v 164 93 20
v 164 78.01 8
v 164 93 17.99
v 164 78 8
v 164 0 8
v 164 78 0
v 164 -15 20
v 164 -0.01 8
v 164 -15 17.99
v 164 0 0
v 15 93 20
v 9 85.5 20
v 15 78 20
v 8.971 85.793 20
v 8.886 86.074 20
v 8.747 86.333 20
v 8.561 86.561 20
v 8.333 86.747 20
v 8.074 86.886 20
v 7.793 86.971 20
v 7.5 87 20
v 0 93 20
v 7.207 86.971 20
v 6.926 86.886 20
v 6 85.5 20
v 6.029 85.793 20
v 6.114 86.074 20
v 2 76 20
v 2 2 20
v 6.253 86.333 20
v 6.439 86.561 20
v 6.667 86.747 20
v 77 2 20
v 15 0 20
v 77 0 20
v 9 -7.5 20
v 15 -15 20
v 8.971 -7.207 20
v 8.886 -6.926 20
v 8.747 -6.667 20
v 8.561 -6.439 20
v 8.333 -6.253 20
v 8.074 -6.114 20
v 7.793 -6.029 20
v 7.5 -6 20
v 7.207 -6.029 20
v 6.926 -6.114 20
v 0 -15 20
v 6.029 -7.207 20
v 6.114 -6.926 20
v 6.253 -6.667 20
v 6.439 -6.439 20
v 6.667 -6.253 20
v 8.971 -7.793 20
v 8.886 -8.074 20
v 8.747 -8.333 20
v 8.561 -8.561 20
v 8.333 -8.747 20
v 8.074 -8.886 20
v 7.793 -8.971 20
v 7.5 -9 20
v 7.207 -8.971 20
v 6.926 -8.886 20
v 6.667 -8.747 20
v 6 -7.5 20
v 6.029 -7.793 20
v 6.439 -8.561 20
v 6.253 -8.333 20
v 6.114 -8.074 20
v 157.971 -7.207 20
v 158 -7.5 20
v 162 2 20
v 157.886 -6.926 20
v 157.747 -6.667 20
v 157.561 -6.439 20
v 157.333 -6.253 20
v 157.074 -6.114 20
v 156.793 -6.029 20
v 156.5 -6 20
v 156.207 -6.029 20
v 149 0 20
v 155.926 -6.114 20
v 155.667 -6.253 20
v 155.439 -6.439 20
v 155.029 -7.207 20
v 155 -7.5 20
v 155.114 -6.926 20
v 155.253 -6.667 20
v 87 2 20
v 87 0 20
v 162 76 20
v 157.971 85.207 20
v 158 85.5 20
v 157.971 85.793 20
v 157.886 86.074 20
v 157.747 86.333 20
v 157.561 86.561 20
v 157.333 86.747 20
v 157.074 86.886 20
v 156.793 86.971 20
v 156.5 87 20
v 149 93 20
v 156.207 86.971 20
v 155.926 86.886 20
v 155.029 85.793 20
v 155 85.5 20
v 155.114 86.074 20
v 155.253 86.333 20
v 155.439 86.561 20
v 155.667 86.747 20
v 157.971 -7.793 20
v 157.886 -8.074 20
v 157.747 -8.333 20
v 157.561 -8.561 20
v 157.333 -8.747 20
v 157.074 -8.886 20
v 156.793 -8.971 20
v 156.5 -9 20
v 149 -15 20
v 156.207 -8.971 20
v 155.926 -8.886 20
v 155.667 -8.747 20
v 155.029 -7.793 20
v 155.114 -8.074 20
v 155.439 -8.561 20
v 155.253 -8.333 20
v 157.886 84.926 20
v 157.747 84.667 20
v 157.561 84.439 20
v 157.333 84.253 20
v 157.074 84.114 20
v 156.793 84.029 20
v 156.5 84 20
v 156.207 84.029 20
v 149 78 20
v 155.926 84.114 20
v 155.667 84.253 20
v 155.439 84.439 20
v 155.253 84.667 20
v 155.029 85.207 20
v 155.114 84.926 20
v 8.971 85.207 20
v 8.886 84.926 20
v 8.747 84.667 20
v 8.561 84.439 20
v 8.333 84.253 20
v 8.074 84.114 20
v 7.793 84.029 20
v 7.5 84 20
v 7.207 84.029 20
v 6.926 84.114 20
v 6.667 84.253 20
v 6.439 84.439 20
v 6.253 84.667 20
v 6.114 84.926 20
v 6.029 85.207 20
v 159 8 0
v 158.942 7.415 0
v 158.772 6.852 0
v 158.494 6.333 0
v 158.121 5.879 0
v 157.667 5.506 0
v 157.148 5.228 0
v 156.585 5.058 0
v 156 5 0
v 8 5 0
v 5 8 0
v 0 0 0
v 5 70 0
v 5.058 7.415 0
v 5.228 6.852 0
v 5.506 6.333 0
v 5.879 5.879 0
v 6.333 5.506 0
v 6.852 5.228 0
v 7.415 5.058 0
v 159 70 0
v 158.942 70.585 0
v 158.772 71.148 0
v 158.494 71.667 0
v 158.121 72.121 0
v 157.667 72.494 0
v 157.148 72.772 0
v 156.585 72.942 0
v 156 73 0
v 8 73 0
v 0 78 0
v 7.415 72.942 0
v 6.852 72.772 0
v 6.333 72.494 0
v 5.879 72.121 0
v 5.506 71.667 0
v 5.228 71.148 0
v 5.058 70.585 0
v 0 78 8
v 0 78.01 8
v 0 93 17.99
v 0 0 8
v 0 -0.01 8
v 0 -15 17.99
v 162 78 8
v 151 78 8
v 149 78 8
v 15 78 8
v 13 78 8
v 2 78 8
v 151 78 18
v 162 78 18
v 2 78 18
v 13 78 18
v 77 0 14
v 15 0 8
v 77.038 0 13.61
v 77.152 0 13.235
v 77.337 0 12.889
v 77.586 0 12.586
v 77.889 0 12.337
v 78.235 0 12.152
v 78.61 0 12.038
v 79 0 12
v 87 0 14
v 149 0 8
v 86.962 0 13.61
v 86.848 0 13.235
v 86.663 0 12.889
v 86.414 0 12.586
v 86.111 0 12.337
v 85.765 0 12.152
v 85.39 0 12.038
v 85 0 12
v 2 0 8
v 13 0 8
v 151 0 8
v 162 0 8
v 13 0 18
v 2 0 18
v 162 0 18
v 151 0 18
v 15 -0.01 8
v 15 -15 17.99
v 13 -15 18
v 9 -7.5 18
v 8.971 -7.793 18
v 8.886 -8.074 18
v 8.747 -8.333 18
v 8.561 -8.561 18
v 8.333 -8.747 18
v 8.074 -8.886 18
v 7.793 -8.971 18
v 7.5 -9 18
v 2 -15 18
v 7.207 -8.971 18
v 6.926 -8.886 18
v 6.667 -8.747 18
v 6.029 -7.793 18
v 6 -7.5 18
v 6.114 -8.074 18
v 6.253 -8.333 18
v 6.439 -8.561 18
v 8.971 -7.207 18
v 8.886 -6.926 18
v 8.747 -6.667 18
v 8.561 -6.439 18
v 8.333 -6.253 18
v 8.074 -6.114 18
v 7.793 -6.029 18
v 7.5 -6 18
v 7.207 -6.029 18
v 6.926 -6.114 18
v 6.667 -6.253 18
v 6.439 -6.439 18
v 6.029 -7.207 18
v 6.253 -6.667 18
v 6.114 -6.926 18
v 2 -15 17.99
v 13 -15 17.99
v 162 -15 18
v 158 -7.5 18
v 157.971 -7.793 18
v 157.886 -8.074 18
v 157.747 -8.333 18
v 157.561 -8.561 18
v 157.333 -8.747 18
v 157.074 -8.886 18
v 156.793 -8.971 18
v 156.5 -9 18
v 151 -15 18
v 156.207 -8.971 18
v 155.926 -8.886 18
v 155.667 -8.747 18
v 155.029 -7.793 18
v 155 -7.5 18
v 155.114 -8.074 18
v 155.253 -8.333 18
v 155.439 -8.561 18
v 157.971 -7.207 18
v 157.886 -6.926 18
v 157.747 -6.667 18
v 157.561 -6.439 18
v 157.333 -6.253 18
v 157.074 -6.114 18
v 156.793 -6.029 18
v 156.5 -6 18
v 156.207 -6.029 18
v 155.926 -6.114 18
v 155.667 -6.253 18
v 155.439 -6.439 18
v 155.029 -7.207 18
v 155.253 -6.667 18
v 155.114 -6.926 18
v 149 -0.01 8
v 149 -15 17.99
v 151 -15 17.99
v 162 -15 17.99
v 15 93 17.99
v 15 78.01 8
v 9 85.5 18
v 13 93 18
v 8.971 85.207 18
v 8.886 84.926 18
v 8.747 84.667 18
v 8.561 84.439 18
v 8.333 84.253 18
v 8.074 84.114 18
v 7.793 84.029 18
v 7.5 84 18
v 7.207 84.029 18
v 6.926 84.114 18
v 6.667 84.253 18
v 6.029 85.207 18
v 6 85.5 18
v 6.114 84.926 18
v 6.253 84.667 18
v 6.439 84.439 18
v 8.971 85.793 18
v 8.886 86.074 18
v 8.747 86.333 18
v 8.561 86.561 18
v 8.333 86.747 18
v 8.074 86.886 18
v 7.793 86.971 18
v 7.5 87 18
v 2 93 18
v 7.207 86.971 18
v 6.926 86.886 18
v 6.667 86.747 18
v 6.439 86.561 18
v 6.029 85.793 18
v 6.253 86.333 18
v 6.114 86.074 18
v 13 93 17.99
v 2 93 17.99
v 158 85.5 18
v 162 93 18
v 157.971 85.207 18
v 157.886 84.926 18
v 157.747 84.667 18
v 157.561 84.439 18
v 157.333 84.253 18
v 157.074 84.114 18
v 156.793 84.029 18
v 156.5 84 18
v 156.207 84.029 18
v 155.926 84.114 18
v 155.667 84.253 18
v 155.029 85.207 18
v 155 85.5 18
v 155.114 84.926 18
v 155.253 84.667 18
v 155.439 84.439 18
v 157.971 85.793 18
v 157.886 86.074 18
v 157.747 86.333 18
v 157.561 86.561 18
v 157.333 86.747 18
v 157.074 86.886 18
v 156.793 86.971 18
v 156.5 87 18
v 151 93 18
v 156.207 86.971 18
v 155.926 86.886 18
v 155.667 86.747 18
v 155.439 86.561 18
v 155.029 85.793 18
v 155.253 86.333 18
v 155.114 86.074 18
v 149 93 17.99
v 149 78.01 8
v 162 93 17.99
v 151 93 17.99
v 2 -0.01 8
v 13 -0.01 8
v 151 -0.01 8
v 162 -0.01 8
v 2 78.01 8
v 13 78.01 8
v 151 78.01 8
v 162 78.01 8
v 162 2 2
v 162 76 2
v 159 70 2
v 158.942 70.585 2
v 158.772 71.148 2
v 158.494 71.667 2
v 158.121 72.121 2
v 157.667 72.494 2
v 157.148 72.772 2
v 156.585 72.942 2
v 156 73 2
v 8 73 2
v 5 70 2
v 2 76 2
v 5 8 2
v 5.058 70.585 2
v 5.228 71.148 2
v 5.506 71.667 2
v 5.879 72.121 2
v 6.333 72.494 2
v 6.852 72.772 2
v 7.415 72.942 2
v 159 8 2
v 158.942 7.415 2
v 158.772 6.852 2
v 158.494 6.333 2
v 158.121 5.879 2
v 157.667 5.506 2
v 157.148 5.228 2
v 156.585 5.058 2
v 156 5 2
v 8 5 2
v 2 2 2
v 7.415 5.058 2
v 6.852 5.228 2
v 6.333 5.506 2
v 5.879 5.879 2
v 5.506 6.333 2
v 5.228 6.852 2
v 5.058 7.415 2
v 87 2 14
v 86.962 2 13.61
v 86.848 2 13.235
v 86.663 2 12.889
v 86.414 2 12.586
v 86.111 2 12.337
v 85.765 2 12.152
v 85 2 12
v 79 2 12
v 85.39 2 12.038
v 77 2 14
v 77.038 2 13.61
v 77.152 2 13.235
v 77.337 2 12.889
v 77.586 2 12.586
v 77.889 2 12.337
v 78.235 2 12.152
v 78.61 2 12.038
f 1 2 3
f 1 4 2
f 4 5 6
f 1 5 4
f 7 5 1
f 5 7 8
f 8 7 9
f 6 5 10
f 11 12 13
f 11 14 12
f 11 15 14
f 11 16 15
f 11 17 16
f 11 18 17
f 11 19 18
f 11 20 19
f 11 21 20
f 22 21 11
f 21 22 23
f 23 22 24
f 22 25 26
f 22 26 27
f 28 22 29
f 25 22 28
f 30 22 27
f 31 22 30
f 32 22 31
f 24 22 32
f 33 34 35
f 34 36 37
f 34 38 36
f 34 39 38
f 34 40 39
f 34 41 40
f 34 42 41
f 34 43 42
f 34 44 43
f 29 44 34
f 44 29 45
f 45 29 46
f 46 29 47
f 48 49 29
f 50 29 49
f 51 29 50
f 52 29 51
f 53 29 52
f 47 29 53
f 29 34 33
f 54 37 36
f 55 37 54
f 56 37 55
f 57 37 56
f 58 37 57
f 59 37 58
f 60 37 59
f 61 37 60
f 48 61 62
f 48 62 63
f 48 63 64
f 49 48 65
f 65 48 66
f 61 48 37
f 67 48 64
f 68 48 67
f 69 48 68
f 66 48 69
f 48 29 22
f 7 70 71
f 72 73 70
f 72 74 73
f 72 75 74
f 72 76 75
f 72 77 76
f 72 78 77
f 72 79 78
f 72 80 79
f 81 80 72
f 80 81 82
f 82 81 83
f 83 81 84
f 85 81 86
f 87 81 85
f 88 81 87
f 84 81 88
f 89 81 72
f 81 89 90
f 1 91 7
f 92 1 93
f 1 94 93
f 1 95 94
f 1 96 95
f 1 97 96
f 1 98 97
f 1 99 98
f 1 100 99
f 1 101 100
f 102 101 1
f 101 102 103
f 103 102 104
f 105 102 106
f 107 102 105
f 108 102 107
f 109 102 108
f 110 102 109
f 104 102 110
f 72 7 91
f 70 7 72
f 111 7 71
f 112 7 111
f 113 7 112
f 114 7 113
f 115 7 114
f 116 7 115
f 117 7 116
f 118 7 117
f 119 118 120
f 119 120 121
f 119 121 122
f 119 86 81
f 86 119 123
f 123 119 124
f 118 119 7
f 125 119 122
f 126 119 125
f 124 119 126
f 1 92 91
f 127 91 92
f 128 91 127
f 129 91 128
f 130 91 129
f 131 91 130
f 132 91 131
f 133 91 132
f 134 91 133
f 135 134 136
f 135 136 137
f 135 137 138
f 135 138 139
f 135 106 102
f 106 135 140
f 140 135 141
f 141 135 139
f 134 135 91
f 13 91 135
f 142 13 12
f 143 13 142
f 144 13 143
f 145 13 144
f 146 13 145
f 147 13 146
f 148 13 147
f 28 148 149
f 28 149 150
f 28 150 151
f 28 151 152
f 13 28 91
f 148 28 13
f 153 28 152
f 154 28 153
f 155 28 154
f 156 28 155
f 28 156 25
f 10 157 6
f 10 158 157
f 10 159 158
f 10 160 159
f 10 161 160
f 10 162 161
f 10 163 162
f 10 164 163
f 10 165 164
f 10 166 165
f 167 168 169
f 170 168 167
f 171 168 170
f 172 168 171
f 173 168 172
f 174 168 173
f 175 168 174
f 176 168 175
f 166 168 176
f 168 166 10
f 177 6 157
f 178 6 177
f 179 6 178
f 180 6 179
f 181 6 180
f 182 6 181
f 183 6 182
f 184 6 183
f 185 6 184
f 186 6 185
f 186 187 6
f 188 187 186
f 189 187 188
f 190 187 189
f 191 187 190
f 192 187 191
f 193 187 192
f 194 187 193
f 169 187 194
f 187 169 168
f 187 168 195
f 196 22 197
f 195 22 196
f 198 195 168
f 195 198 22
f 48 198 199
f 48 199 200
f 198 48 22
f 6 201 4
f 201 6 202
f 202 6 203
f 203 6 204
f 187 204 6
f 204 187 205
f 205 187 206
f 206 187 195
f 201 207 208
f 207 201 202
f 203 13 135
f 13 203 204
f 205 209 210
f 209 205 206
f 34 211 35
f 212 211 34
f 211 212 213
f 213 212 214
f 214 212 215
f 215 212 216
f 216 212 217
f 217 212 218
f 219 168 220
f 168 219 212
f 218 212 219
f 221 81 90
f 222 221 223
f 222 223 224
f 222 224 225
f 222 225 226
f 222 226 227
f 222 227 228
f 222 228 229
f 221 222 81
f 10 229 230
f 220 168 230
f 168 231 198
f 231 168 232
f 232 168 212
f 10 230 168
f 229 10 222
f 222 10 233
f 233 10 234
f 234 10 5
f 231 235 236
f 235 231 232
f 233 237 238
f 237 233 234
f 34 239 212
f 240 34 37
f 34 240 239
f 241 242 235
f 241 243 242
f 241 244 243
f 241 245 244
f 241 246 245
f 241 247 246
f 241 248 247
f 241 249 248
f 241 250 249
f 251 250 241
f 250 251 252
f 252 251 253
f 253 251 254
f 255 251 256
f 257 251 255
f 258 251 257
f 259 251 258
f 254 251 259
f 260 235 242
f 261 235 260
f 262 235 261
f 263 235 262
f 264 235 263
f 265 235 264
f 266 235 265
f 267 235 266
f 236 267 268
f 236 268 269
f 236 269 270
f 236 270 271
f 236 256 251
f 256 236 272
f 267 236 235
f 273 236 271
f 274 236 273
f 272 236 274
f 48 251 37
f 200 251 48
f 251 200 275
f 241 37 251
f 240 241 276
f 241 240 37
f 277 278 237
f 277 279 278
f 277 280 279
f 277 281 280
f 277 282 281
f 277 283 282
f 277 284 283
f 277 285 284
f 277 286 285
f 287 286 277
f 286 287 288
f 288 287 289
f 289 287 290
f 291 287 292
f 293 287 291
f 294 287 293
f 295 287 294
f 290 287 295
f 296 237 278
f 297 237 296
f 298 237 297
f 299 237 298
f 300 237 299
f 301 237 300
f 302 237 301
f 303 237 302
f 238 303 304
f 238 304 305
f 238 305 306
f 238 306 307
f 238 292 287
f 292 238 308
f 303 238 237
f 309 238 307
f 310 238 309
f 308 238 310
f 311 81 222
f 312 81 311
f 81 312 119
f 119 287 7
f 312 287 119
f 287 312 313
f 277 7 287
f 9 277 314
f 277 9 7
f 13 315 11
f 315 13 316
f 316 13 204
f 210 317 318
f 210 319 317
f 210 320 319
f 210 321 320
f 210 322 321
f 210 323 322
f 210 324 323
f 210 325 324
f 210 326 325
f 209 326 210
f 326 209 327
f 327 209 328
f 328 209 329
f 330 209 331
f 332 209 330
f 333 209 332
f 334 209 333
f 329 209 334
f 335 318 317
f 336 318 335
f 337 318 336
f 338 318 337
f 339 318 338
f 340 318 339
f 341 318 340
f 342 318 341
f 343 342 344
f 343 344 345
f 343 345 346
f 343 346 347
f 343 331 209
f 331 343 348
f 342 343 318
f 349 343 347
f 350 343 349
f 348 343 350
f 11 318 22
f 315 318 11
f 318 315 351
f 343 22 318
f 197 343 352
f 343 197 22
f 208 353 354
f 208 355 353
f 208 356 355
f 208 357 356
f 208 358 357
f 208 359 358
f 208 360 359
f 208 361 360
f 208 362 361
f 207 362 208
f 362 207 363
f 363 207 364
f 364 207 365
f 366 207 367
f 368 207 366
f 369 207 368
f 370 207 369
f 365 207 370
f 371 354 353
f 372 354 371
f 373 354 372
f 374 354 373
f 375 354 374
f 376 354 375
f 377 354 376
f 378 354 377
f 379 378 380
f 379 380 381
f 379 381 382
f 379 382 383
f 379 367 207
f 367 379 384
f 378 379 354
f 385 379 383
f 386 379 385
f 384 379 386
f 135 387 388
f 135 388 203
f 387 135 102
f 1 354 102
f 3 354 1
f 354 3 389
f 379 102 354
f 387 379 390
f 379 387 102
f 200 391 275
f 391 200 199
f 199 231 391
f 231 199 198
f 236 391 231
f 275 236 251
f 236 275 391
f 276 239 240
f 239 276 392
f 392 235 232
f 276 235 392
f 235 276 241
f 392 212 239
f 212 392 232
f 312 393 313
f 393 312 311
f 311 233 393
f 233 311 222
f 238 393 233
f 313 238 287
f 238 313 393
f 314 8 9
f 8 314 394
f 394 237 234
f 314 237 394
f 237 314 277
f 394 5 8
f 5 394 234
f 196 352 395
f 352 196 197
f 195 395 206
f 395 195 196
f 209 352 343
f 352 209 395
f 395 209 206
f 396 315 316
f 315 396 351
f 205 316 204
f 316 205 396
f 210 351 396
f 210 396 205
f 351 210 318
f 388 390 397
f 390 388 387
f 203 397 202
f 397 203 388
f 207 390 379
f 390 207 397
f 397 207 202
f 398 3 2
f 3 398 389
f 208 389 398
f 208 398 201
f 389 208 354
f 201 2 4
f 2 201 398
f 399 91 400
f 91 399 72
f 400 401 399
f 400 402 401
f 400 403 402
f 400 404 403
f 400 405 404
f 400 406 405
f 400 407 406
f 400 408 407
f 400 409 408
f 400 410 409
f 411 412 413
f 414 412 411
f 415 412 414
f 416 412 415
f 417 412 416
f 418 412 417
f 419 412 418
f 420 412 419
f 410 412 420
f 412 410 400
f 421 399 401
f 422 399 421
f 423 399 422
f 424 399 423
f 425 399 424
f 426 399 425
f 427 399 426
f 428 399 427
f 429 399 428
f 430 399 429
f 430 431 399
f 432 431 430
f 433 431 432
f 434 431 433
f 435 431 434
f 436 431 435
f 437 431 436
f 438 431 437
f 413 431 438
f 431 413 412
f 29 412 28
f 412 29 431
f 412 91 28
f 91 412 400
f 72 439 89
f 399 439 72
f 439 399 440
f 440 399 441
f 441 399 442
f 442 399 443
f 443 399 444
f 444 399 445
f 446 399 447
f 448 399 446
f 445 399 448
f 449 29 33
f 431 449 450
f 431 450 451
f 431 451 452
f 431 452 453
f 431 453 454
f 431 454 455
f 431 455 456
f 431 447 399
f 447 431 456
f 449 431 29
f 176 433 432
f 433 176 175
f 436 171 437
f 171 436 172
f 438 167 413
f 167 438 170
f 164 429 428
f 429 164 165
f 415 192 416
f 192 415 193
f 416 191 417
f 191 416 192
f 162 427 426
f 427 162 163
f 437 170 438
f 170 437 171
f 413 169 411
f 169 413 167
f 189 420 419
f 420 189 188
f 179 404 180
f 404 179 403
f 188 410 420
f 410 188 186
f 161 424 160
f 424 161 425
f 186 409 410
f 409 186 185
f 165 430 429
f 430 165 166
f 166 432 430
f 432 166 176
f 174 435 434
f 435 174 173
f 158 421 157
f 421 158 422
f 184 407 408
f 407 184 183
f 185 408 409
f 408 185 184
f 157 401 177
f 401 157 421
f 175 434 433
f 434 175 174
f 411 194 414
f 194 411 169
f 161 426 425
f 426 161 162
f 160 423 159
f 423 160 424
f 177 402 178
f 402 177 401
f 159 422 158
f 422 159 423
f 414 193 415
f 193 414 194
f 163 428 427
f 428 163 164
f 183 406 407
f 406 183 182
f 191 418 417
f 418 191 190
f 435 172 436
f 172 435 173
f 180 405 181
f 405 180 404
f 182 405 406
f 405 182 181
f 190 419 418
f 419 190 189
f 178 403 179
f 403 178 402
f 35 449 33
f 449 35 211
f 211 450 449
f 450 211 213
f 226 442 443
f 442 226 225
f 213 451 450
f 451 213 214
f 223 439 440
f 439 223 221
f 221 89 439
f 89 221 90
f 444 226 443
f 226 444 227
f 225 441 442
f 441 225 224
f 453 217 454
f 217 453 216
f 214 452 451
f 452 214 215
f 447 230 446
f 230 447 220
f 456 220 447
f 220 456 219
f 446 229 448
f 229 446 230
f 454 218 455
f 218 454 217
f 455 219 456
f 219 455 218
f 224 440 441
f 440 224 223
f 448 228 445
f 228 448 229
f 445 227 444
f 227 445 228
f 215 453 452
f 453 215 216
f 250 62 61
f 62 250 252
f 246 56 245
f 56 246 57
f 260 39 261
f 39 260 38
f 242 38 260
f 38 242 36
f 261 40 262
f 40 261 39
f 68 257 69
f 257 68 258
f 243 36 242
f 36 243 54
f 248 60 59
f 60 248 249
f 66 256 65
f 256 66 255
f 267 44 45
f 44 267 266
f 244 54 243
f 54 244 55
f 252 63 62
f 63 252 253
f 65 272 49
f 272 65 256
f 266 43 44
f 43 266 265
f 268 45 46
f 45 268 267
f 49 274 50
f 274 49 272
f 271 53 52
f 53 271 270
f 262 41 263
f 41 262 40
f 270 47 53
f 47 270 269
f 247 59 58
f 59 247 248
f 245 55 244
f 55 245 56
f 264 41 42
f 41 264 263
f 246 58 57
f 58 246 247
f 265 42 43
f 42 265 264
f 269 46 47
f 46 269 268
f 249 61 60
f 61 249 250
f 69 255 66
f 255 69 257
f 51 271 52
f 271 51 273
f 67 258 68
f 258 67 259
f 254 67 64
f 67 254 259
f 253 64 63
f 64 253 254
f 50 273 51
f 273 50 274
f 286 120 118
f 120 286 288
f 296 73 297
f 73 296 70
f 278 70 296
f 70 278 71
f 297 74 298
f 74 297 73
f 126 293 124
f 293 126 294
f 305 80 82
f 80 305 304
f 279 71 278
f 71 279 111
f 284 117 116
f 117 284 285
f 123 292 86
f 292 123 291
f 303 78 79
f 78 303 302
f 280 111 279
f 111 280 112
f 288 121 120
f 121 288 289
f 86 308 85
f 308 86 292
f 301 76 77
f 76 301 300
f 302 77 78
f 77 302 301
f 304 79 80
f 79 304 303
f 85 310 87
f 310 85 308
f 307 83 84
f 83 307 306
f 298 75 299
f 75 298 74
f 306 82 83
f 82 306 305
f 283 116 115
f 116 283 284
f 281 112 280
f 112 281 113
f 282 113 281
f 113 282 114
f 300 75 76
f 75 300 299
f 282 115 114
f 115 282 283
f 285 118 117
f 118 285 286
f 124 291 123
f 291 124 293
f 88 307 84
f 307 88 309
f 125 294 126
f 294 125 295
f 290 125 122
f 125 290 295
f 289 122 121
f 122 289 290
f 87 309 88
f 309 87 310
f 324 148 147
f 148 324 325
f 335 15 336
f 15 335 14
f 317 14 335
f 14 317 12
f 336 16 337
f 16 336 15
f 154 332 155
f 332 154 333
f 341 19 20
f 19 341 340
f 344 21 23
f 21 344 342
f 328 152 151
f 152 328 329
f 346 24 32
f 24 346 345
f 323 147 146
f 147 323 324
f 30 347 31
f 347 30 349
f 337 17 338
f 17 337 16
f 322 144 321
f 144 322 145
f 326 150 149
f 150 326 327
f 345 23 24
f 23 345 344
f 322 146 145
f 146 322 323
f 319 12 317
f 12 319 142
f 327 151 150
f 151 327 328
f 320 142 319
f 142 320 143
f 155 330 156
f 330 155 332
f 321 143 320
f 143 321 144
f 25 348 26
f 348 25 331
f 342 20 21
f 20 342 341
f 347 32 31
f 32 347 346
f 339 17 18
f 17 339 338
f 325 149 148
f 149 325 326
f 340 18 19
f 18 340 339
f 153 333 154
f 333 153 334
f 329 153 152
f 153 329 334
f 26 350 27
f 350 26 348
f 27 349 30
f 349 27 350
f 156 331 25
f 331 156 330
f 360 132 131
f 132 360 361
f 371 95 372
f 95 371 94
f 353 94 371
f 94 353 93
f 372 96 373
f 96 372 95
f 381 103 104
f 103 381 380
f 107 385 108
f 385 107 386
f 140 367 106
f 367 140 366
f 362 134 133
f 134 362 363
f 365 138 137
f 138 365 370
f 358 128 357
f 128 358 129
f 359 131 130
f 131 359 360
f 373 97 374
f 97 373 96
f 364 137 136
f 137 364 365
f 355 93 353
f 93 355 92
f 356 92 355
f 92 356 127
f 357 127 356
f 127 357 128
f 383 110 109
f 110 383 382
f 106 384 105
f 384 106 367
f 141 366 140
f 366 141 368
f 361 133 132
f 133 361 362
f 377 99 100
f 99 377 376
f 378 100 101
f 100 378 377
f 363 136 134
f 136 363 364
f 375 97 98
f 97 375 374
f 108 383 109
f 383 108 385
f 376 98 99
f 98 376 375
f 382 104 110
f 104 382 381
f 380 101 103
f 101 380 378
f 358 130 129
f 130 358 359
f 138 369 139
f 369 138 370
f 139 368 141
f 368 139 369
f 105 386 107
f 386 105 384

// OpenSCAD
// Box enclosure for 160x74x18mm object

// Inner dimensions (the object to enclose)
inner_length = 160;
inner_width = 74;
inner_height = 18;

// Wall thickness
wall = 2;

// Bottom hole inset from inner walls
hole_inset = 3;

// Bottom hole corner radius
hole_corner_radius = 3;

// Side hole (door) dimensions
side_hole_width = 10;
side_hole_height = 8;
side_hole_corner_radius = 2;

// Overhang dimensions
overhang_width = 15;
overhang_length = 15;

// Screw hole diameter
screw_hole_d = 3;

// Gusset dimensions
gusset_thickness = 2;
gusset_height = 10;

// Outer dimensions
outer_length = inner_length + 2 * wall;
outer_width = inner_width + 2 * wall;
outer_height = inner_height + wall; // wall on bottom only, open top

// Bottom hole dimensions
hole_length = inner_length - 2 * hole_inset;
hole_width = inner_width - 2 * hole_inset;

// Overhang positions along X (flush to edges)
overhang_x1 = 0;
overhang_x2 = outer_length - overhang_width;

// Rounded rectangle module
module rounded_rect(length, width, height, radius) {
    translate([radius, radius, 0])
        hull() {
            cylinder(h = height, r = radius, $fn = 32);
            translate([length - 2 * radius, 0, 0])
                cylinder(h = height, r = radius, $fn = 32);
            translate([0, width - 2 * radius, 0])
                cylinder(h = height, r = radius, $fn = 32);
            translate([length - 2 * radius, width - 2 * radius, 0])
                cylinder(h = height, r = radius, $fn = 32);
        }
}

// Door profile: bottom corners rounded, top corners square (open to top edge)
module door_2d(width, height, radius) {
    hull() {
        // Top-left square
        translate([0, height - 0.01])
            square([0.01, 0.01]);
        // Top-right square
        translate([width - 0.01, height - 0.01])
            square([0.01, 0.01]);
        // Bottom-left rounded
        translate([radius, radius])
            circle(r = radius, $fn = 32);
        // Bottom-right rounded
        translate([width - radius, radius])
            circle(r = radius, $fn = 32);
    }
}

// Gusset module: right-triangle brace
module gusset(length, height, thickness) {
    hull() {
        cube([thickness, 0.01, height]);
        translate([0, length - 0.01, height - 0.01])
            cube([thickness, 0.01, 0.01]);
    }
}

difference() {
    union() {
        // Outer shell
        cube([outer_length, outer_width, outer_height]);

        // Left side overhangs (Y=0, extending in -Y)
        translate([overhang_x1, -overhang_length, outer_height - wall])
            cube([overhang_width, overhang_length, wall]);
        translate([overhang_x2, -overhang_length, outer_height - wall])
            cube([overhang_width, overhang_length, wall]);

        // Right side overhangs (Y=outer_width, extending in +Y)
        translate([overhang_x1, outer_width, outer_height - wall])
            cube([overhang_width, overhang_length, wall]);
        translate([overhang_x2, outer_width, outer_height - wall])
            cube([overhang_width, overhang_length, wall]);

        // Gussets - left side, front overhang
        translate([overhang_x1, 0, outer_height - wall - gusset_height])
            mirror([0, 1, 0])
                gusset(overhang_length, gusset_height, gusset_thickness);
        translate([overhang_x1 + overhang_width - gusset_thickness, 0, outer_height - wall - gusset_height])
            mirror([0, 1, 0])
                gusset(overhang_length, gusset_height, gusset_thickness);

        // Gussets - left side, rear overhang
        translate([overhang_x2, 0, outer_height - wall - gusset_height])
            mirror([0, 1, 0])
                gusset(overhang_length, gusset_height, gusset_thickness);
        translate([overhang_x2 + overhang_width - gusset_thickness, 0, outer_height - wall - gusset_height])
            mirror([0, 1, 0])
                gusset(overhang_length, gusset_height, gusset_thickness);

        // Gussets - right side, front overhang
        translate([overhang_x1, outer_width, outer_height - wall - gusset_height])
            gusset(overhang_length, gusset_height, gusset_thickness);
        translate([overhang_x1 + overhang_width - gusset_thickness, outer_width, outer_height - wall - gusset_height])
            gusset(overhang_length, gusset_height, gusset_thickness);

        // Gussets - right side, rear overhang
        translate([overhang_x2, outer_width, outer_height - wall - gusset_height])
            gusset(overhang_length, gusset_height, gusset_thickness);
        translate([overhang_x2 + overhang_width - gusset_thickness, outer_width, outer_height - wall - gusset_height])
            gusset(overhang_length, gusset_height, gusset_thickness);
    }

    // Inner cavity
    translate([wall, wall, wall])
        cube([inner_length, inner_width, inner_height + 1]);

    // Rounded square hole in the bottom
    translate([wall + hole_inset, wall + hole_inset, -1])
        rounded_rect(hole_length, hole_width, wall + 2, hole_corner_radius);

    // Door on the long side (front), centered horizontally, near top edge
    // Bottom corners rounded, top is open (square) to the top edge
    translate([outer_length / 2 - side_hole_width / 2, wall + 1, outer_height - side_hole_height])
        rotate([90, 0, 0])
            linear_extrude(height = wall + 2)
                door_2d(side_hole_width, side_hole_height + 1, side_hole_corner_radius);

    // Screw holes in overhangs - left side
    translate([overhang_x1 + overhang_width / 2, -overhang_length / 2, outer_height - wall - 1])
        cylinder(h = wall + 2, d = screw_hole_d, $fn = 32);
    translate([overhang_x2 + overhang_width / 2, -overhang_length / 2, outer_height - wall - 1])
        cylinder(h = wall + 2, d = screw_hole_d, $fn = 32);

    // Screw holes in overhangs - right side
    translate([overhang_x1 + overhang_width / 2, outer_width + overhang_length / 2, outer_height - wall - 1])
        cylinder(h = wall + 2, d = screw_hole_d, $fn = 32);
    translate([overhang_x2 + overhang_width / 2, outer_width + overhang_length / 2, outer_height - wall - 1])
        cylinder(h = wall + 2, d = screw_hole_d, $fn = 32);
}
